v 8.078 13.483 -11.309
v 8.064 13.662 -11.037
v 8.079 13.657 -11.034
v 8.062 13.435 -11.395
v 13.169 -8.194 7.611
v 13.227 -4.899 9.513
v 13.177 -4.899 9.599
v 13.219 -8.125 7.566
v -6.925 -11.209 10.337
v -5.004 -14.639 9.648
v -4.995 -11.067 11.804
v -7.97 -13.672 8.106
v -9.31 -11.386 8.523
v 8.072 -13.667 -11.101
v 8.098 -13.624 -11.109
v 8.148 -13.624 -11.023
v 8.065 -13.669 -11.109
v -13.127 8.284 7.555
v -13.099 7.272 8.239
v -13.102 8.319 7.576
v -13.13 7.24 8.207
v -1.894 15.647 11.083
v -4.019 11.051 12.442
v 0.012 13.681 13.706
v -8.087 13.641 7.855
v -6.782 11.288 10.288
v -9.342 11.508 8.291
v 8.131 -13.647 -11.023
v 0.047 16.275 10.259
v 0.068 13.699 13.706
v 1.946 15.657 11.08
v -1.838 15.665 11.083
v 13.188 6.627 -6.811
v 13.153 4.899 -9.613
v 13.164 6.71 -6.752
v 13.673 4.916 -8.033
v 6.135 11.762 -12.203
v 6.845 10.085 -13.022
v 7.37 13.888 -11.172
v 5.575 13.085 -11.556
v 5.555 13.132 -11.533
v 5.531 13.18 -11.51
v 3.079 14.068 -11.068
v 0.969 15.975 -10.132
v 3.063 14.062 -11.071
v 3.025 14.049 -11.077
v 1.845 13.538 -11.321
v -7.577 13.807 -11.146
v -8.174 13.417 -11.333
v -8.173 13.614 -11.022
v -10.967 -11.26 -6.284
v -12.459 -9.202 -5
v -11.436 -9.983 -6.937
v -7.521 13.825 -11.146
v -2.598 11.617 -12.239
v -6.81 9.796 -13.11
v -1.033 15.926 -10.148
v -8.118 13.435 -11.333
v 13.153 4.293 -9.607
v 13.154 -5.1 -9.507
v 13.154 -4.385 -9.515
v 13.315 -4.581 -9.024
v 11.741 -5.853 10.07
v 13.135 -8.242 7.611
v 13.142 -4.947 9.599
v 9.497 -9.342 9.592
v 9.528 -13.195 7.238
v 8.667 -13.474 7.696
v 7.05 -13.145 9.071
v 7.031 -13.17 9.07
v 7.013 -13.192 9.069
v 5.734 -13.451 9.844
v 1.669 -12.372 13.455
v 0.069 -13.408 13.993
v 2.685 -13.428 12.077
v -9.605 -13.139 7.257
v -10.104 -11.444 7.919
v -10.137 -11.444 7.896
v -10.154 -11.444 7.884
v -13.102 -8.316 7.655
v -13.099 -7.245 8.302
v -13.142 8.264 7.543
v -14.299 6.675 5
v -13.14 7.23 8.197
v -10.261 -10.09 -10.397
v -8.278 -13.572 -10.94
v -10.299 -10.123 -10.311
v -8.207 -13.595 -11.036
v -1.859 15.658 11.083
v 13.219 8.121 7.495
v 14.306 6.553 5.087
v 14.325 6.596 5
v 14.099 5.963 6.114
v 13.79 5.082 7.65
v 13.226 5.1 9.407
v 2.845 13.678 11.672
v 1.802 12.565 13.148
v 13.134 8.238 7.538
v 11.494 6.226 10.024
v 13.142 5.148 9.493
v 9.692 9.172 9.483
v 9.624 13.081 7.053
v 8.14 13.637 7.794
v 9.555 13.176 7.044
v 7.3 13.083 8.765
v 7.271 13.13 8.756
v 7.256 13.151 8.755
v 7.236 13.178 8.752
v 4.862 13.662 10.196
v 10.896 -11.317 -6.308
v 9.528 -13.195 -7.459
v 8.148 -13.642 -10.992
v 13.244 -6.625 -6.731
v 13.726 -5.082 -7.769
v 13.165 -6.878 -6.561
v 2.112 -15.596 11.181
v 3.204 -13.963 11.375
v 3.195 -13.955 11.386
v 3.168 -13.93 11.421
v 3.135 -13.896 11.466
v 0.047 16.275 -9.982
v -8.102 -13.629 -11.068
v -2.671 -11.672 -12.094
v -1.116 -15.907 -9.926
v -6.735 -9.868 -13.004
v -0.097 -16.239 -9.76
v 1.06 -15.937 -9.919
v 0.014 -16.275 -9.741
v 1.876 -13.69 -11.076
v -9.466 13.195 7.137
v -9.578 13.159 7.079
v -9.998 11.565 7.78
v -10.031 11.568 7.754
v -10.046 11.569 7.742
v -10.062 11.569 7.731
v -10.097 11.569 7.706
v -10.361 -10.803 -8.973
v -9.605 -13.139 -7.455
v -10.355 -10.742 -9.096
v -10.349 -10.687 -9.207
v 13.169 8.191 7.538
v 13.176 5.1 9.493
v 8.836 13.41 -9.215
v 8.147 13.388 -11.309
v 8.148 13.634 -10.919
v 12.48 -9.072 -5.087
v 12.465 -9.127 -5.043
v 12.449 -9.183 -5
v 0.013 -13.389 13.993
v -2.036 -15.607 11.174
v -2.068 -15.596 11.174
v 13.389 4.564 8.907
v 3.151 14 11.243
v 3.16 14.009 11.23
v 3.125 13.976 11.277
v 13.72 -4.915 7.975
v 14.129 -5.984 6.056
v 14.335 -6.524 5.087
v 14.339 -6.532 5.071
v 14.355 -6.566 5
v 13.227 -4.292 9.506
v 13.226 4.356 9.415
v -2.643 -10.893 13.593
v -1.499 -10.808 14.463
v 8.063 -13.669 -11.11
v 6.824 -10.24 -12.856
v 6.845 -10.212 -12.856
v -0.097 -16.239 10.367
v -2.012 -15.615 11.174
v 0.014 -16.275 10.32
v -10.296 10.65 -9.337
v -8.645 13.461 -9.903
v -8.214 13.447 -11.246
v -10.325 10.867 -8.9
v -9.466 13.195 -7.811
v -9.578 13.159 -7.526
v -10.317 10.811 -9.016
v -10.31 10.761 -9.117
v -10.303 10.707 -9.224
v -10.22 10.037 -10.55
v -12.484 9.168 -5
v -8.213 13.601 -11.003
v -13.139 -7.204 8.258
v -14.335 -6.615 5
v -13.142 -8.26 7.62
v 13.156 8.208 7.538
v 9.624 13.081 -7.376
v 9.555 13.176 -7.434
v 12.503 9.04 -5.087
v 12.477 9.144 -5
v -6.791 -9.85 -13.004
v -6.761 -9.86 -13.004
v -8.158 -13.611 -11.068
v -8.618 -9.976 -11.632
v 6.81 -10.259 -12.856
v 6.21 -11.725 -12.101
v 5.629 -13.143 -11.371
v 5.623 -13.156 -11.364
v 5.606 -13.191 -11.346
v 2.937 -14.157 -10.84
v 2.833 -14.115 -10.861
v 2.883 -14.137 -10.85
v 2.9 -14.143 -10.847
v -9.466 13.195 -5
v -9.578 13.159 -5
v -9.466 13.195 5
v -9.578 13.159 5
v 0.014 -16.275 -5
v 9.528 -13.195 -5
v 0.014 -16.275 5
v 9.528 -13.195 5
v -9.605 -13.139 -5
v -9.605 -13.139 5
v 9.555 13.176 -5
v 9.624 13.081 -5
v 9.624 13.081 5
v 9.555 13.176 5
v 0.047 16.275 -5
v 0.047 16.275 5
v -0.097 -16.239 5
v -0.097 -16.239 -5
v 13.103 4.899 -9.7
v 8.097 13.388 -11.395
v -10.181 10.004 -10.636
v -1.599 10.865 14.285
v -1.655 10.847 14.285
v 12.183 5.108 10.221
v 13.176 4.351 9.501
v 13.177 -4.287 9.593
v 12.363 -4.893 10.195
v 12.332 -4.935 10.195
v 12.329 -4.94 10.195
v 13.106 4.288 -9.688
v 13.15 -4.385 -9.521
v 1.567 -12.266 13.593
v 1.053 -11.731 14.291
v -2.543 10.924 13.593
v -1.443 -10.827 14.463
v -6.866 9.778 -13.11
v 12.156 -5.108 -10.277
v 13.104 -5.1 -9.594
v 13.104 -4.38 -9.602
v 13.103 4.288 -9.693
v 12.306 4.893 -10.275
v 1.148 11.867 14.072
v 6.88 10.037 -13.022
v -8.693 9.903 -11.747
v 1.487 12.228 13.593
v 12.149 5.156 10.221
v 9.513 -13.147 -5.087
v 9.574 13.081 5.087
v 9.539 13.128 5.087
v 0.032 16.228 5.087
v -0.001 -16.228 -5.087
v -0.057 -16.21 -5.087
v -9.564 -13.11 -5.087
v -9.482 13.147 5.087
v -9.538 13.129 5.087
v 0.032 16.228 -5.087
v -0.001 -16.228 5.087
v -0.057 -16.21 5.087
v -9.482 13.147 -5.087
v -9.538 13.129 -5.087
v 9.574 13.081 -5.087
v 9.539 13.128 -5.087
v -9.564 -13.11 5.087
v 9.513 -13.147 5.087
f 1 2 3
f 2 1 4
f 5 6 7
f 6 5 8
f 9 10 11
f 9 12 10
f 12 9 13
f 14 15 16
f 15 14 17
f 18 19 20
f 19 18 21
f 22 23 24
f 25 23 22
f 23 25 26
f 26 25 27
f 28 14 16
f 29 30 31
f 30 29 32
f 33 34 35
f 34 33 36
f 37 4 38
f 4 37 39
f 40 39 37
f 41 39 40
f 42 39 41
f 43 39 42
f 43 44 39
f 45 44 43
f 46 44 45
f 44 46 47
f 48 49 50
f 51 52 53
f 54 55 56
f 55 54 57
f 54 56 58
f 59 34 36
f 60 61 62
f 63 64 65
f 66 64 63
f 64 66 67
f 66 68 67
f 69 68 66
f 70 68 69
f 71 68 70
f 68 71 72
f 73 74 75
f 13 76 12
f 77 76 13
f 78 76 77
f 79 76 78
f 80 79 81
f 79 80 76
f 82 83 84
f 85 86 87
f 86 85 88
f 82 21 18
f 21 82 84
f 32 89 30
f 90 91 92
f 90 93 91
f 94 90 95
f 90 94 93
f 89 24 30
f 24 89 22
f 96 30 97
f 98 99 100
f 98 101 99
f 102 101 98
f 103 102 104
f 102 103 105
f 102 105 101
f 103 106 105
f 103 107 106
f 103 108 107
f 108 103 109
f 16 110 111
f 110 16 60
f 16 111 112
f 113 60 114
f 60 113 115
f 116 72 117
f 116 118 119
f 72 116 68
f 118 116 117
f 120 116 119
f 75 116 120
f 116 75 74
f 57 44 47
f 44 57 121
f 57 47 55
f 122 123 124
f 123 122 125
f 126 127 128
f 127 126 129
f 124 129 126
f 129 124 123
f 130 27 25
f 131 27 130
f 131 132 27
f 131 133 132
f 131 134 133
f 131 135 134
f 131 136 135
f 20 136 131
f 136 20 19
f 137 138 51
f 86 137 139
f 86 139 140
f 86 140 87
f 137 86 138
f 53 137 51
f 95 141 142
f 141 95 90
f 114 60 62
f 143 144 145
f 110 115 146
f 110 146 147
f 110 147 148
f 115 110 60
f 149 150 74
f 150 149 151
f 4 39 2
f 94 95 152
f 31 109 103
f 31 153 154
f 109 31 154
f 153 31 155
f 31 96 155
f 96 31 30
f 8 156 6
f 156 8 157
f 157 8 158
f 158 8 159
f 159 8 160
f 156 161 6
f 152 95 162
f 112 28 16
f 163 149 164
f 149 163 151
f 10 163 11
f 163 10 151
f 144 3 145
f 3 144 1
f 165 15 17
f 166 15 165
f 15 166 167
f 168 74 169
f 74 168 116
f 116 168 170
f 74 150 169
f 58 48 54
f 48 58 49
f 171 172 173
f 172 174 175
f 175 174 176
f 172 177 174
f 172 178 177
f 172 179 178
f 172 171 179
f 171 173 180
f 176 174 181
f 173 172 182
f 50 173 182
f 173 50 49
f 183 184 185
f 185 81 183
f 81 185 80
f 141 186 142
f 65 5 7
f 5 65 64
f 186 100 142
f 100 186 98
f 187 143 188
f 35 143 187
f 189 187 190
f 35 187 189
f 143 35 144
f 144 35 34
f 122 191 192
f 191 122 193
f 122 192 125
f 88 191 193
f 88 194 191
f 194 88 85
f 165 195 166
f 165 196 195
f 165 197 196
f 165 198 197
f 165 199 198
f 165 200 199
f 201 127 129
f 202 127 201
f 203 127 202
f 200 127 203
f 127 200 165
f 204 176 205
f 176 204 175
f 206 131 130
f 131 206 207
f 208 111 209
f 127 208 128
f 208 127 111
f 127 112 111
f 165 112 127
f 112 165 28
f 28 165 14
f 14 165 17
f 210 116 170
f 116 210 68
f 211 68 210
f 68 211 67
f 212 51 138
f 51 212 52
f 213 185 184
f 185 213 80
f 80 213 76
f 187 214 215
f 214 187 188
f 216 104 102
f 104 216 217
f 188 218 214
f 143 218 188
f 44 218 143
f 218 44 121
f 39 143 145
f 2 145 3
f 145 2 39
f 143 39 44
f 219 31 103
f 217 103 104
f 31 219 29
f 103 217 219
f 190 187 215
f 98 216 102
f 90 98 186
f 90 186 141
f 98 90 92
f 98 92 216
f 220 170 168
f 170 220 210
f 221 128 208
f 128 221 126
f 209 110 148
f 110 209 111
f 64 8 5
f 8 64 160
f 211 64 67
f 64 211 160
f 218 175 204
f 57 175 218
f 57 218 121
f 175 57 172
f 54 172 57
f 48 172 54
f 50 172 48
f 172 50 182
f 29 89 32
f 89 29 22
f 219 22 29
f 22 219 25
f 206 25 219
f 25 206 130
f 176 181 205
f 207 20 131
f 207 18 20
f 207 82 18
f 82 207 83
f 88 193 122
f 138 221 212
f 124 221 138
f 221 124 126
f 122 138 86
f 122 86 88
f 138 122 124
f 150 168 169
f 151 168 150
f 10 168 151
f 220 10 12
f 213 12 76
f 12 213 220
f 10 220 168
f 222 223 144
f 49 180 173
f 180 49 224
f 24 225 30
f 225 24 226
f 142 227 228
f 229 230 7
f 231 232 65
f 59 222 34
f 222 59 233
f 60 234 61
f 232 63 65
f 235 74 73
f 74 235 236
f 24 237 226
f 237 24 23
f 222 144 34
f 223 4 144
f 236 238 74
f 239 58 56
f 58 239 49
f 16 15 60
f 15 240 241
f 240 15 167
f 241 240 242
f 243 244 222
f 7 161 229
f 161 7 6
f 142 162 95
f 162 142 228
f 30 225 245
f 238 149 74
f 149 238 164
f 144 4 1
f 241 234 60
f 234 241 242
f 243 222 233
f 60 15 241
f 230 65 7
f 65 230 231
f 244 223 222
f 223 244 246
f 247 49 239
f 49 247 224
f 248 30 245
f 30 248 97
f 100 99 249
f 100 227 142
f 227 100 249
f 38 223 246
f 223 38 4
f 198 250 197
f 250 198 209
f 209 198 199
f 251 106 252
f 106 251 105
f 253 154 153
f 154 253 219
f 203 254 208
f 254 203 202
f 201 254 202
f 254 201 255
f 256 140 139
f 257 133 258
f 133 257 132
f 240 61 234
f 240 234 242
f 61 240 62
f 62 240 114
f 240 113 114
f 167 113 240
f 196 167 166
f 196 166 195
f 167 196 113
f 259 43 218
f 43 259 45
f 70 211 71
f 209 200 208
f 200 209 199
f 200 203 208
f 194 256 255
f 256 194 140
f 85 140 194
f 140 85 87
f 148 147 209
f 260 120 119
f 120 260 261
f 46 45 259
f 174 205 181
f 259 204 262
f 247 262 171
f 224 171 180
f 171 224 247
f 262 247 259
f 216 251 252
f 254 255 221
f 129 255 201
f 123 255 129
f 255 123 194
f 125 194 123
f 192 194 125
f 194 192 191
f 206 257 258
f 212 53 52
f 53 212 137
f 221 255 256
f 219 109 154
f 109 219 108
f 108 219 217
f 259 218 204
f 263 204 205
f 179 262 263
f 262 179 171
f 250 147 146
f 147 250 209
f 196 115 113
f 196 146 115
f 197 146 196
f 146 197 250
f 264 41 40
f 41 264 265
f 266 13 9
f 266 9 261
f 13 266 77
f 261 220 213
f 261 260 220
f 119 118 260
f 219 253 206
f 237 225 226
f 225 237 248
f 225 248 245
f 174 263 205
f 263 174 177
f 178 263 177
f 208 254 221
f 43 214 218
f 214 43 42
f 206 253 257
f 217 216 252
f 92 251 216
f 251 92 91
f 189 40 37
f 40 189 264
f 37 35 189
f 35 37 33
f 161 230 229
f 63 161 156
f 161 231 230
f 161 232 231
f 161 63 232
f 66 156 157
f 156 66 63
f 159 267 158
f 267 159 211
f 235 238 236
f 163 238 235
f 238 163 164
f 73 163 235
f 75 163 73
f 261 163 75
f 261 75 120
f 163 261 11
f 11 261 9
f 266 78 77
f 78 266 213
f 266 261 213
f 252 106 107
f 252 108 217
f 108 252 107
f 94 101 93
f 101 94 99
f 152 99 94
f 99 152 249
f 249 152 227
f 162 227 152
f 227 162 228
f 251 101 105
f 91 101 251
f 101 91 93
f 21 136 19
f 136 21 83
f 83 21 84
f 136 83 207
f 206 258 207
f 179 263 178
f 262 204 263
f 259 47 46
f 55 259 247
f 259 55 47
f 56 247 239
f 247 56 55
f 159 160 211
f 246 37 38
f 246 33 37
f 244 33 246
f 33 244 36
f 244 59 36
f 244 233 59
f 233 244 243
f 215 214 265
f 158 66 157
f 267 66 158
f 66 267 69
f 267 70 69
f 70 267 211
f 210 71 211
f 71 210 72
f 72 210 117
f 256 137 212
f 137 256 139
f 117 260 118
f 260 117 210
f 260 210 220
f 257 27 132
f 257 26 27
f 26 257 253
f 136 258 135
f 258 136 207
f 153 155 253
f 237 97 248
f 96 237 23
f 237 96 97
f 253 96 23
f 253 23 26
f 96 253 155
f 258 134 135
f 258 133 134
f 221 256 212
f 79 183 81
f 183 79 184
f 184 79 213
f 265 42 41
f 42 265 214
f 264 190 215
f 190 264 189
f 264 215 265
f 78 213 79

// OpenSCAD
// Auto-generated OpenSCAD file

    inner_points = 10*[[-0.0016418331040251556, -1.6180331557585415, -0.5000000000000097], [-0.0016418331038291958, -1.6180331557585472, 0.49999999999999034], [0.0016418331038291958, 1.6180331557585472, -0.49999999999999034], [0.0016418331040251556, 1.6180331557585415, 0.5000000000000097], [-0.952384297558225, -1.3080512751855717, -0.4999999999998215], [-0.9523842975580289, -1.3080512751855777, 0.5000000000001786], [0.94972775579202, -1.3099813657559998, -0.5000000000001942], [0.949727755792216, -1.3099813657560058, 0.4999999999998058], [-0.949727755792216, 1.3099813657560058, -0.4999999999998058], [-0.94972775579202, 1.3099813657559998, 0.5000000000001942], [0.9523842975580289, 1.3080512751855777, -0.5000000000001786], [0.952384297558225, 1.3080512751855717, 0.4999999999998215], [-1.5393483306969136, -0.4984382665193544, -0.49999999999970146], [-1.5393483306967177, -0.4984382665193606, 0.5000000000002985], [1.5383336220346362, -0.5015612186636724, -0.5000000000003045], [1.538333622034832, -0.5015612186636786, 0.49999999999969547], [-1.538333622034832, 0.5015612186636786, -0.49999999999969547], [-1.5383336220346362, 0.5015612186636724, 0.5000000000003045], [1.5393483306967177, 0.4984382665193606, -0.5000000000002985], [1.5393483306969136, 0.4984382665193544, 0.49999999999970146], [-0.2636863372842498, -0.808749845922564, -1.876381920471127], [-0.26368633728351437, -0.8087498459225871, 1.8763819204712202], [-0.2620445041803226, 0.8092833098359803, -1.8763819204711172], [-0.2620445041795872, 0.8092833098359572, 1.87638192047123], [0.6876832516117953, -0.5006980559200224, -1.8763819204713112], [0.6876832516125307, -0.5006980559200455, 1.876381920471036], [0.6886979602738771, 0.49930142926301074, -1.8763819204713055], [0.6886979602746125, 0.49930142926298754, 1.8763819204710417], [-0.8506503704229385, 0.0008631627436532224, -1.8763819204710068], [-0.850650370422203, 0.0008631627436300636, 1.8763819204713403], [0.42399691432801623, -1.3094479018426013, -1.350650808352131], [0.4239969143285456, -1.309447901842618, 1.3506508083519488], [0.42665345609402516, 1.3085847390989762, -1.3506508083521154], [0.4266534560945545, 1.3085847390989596, 1.3506508083519644], [-1.1143367077067177, -0.8078866831789255, -1.3506508083518265], [-1.1143367077061885, -0.8078866831789423, 1.3506508083522533], [-1.1126948746027905, 0.8101464725796188, -1.3506508083518167], [-1.1126948746022614, 0.810146472579602, 1.350650808352263], [1.3763812118861432, -0.0013966266570264558, -1.3506508083523097], [1.3763812118866725, -0.0013966266570431258, 1.35065080835177]];

    outer_points = 10*[[1.6180016504227956, 0.49997195375907766, -0.011519263576068448], [1.618042389272906, -0.49997195375907766, -0.0009277501021131744], [-1.618042389272906, 0.49997195375907766, 0.0009277501021131744], [-1.6180016504227956, -0.49997195375907766, 0.011519263576068448], [1.3053290615582724, 0.4898987513388698, -0.961326813959702], [1.3053698004083825, -0.5100451561792856, -0.9507353004857466], [1.312644822251197, 0.5100451561792856, 0.9406654548908802], [1.312685561101307, -0.4898987513388698, 0.9512569683648355], [-1.312685561101307, 0.4898987513388698, -0.9512569683648355], [-1.312644822251197, -0.5100451561792856, -0.9406654548908802], [-1.3053698004083825, 0.5100451561792856, 0.9507353004857466], [-1.3053290615582724, -0.4898987513388698, 0.961326813959702], [0.494057357253453, 0.4836731698676236, -1.5459629947847504], [0.49409809610356314, -0.5162707376505317, -1.5353714813107953], [0.5058945067081656, 0.5162707376505317, 1.5315251425550196], [0.5059352455582757, -0.4836731698676236, 1.5421166560289747], [-0.5059352455582757, 0.4836731698676236, -1.5421166560289747], [-0.5058945067081656, -0.5162707376505317, -1.5315251425550196], [-0.49409809610356314, 0.5162707376505317, 1.5353714813107953], [-0.494057357253453, -0.4836731698676236, 1.5459629947847504], [0.8079235550197118, 1.8734925048785318, -0.28583434473369956], [0.8080764383033266, -1.8790608342261998, -0.24608689594778654], [-0.810098464828139, 1.8734925048785318, -0.2796108378946088], [-0.8099455815445241, -1.8790608342261998, -0.23986338910869576], [0.5025667268481131, 1.8835657072987397, 0.6663503737332491], [0.5027196101317281, -1.868987631805992, 0.7060978225191622], [-0.49742587596361565, 1.8835657072987397, 0.6701967124890246], [-0.49727299268000075, -1.868987631805992, 0.7099441612749376], [-0.0033481492851075404, 1.8672669234072858, -0.8704705255587479], [-0.003195266001492647, -1.8852864156974458, -0.8307230767728349], [1.3105881411906073, 1.355079920068634, 0.4059580415501933], [1.3106981891122724, -1.3460701739235539, 0.4345689140207317], [-1.3074264814689722, 1.355079920068634, 0.41602788714505967], [-1.307316433547307, -1.3460701739235539, 0.44463875961559807], [0.8046732650573866, 1.33878113617718, -1.130862857741804], [0.8047833129790517, -1.362368957815008, -1.1022519852712656], [-0.8133487547904642, 1.33878113617718, -1.124639350902713], [-0.8132387068687991, -1.362368957815008, -1.0960284784321745], [0.00523871020727978, 1.365153122488842, 1.3619890987729175], [0.005348758128944959, -1.335996971503346, 1.390599971243456]];

    // Convex hull for inner set (I)
    module inner_hull() {
        hull() {
            for (p = inner_points) {
                translate(p) sphere(r=0.1);
            }
        }
    }

    // Convex hull for outer set (O) minus inner hull (O \ I)
    module outer_minus_inner() {
        difference() {
            hull() {
                for (p = outer_points) {
                    translate(p) sphere(r=0.1);
                }
            }
            inner_hull(); // Subtract inner hull
        }
    }

    // Convex hull for outer set (O) minus all translated inner hulls
    module outer_minus_AllTranslationInner() {
        difference() {
            hull() {
                for (p = outer_points) {
                    translate(p) sphere(r=0.1);
                }
            }
            hull() {
                translate([0,0,50]) inner_hull();
                translate([0,0,-50]) inner_hull();
            }; // Subtract translated inner hulls
        }
    }

    // Difference between outer_minus_inner and outer_minus_AllTranslationInner
    module outer_minus_inner_diff() {
        difference() {
            // Outer minus inner
            difference() {
                hull() {
                    for (p = outer_points) {
                        translate(p) sphere(r=0.1);
                    }
                }
                inner_hull();
            }

            // Subtract Outer minus AllTranslationInner
            difference() {
                hull() {
                    for (p = outer_points) {
                        translate(p) sphere(r=0.1);
                    }
                }
                hull() {
                    translate([0,0,50]) inner_hull();
                    translate([0,0,-50]) inner_hull();
                };
            }
        }
    }

    // Rendering all with colors applied
    color([1, 1, 0, 1]) outer_minus_inner_diff(); // Opaque yellow
    
